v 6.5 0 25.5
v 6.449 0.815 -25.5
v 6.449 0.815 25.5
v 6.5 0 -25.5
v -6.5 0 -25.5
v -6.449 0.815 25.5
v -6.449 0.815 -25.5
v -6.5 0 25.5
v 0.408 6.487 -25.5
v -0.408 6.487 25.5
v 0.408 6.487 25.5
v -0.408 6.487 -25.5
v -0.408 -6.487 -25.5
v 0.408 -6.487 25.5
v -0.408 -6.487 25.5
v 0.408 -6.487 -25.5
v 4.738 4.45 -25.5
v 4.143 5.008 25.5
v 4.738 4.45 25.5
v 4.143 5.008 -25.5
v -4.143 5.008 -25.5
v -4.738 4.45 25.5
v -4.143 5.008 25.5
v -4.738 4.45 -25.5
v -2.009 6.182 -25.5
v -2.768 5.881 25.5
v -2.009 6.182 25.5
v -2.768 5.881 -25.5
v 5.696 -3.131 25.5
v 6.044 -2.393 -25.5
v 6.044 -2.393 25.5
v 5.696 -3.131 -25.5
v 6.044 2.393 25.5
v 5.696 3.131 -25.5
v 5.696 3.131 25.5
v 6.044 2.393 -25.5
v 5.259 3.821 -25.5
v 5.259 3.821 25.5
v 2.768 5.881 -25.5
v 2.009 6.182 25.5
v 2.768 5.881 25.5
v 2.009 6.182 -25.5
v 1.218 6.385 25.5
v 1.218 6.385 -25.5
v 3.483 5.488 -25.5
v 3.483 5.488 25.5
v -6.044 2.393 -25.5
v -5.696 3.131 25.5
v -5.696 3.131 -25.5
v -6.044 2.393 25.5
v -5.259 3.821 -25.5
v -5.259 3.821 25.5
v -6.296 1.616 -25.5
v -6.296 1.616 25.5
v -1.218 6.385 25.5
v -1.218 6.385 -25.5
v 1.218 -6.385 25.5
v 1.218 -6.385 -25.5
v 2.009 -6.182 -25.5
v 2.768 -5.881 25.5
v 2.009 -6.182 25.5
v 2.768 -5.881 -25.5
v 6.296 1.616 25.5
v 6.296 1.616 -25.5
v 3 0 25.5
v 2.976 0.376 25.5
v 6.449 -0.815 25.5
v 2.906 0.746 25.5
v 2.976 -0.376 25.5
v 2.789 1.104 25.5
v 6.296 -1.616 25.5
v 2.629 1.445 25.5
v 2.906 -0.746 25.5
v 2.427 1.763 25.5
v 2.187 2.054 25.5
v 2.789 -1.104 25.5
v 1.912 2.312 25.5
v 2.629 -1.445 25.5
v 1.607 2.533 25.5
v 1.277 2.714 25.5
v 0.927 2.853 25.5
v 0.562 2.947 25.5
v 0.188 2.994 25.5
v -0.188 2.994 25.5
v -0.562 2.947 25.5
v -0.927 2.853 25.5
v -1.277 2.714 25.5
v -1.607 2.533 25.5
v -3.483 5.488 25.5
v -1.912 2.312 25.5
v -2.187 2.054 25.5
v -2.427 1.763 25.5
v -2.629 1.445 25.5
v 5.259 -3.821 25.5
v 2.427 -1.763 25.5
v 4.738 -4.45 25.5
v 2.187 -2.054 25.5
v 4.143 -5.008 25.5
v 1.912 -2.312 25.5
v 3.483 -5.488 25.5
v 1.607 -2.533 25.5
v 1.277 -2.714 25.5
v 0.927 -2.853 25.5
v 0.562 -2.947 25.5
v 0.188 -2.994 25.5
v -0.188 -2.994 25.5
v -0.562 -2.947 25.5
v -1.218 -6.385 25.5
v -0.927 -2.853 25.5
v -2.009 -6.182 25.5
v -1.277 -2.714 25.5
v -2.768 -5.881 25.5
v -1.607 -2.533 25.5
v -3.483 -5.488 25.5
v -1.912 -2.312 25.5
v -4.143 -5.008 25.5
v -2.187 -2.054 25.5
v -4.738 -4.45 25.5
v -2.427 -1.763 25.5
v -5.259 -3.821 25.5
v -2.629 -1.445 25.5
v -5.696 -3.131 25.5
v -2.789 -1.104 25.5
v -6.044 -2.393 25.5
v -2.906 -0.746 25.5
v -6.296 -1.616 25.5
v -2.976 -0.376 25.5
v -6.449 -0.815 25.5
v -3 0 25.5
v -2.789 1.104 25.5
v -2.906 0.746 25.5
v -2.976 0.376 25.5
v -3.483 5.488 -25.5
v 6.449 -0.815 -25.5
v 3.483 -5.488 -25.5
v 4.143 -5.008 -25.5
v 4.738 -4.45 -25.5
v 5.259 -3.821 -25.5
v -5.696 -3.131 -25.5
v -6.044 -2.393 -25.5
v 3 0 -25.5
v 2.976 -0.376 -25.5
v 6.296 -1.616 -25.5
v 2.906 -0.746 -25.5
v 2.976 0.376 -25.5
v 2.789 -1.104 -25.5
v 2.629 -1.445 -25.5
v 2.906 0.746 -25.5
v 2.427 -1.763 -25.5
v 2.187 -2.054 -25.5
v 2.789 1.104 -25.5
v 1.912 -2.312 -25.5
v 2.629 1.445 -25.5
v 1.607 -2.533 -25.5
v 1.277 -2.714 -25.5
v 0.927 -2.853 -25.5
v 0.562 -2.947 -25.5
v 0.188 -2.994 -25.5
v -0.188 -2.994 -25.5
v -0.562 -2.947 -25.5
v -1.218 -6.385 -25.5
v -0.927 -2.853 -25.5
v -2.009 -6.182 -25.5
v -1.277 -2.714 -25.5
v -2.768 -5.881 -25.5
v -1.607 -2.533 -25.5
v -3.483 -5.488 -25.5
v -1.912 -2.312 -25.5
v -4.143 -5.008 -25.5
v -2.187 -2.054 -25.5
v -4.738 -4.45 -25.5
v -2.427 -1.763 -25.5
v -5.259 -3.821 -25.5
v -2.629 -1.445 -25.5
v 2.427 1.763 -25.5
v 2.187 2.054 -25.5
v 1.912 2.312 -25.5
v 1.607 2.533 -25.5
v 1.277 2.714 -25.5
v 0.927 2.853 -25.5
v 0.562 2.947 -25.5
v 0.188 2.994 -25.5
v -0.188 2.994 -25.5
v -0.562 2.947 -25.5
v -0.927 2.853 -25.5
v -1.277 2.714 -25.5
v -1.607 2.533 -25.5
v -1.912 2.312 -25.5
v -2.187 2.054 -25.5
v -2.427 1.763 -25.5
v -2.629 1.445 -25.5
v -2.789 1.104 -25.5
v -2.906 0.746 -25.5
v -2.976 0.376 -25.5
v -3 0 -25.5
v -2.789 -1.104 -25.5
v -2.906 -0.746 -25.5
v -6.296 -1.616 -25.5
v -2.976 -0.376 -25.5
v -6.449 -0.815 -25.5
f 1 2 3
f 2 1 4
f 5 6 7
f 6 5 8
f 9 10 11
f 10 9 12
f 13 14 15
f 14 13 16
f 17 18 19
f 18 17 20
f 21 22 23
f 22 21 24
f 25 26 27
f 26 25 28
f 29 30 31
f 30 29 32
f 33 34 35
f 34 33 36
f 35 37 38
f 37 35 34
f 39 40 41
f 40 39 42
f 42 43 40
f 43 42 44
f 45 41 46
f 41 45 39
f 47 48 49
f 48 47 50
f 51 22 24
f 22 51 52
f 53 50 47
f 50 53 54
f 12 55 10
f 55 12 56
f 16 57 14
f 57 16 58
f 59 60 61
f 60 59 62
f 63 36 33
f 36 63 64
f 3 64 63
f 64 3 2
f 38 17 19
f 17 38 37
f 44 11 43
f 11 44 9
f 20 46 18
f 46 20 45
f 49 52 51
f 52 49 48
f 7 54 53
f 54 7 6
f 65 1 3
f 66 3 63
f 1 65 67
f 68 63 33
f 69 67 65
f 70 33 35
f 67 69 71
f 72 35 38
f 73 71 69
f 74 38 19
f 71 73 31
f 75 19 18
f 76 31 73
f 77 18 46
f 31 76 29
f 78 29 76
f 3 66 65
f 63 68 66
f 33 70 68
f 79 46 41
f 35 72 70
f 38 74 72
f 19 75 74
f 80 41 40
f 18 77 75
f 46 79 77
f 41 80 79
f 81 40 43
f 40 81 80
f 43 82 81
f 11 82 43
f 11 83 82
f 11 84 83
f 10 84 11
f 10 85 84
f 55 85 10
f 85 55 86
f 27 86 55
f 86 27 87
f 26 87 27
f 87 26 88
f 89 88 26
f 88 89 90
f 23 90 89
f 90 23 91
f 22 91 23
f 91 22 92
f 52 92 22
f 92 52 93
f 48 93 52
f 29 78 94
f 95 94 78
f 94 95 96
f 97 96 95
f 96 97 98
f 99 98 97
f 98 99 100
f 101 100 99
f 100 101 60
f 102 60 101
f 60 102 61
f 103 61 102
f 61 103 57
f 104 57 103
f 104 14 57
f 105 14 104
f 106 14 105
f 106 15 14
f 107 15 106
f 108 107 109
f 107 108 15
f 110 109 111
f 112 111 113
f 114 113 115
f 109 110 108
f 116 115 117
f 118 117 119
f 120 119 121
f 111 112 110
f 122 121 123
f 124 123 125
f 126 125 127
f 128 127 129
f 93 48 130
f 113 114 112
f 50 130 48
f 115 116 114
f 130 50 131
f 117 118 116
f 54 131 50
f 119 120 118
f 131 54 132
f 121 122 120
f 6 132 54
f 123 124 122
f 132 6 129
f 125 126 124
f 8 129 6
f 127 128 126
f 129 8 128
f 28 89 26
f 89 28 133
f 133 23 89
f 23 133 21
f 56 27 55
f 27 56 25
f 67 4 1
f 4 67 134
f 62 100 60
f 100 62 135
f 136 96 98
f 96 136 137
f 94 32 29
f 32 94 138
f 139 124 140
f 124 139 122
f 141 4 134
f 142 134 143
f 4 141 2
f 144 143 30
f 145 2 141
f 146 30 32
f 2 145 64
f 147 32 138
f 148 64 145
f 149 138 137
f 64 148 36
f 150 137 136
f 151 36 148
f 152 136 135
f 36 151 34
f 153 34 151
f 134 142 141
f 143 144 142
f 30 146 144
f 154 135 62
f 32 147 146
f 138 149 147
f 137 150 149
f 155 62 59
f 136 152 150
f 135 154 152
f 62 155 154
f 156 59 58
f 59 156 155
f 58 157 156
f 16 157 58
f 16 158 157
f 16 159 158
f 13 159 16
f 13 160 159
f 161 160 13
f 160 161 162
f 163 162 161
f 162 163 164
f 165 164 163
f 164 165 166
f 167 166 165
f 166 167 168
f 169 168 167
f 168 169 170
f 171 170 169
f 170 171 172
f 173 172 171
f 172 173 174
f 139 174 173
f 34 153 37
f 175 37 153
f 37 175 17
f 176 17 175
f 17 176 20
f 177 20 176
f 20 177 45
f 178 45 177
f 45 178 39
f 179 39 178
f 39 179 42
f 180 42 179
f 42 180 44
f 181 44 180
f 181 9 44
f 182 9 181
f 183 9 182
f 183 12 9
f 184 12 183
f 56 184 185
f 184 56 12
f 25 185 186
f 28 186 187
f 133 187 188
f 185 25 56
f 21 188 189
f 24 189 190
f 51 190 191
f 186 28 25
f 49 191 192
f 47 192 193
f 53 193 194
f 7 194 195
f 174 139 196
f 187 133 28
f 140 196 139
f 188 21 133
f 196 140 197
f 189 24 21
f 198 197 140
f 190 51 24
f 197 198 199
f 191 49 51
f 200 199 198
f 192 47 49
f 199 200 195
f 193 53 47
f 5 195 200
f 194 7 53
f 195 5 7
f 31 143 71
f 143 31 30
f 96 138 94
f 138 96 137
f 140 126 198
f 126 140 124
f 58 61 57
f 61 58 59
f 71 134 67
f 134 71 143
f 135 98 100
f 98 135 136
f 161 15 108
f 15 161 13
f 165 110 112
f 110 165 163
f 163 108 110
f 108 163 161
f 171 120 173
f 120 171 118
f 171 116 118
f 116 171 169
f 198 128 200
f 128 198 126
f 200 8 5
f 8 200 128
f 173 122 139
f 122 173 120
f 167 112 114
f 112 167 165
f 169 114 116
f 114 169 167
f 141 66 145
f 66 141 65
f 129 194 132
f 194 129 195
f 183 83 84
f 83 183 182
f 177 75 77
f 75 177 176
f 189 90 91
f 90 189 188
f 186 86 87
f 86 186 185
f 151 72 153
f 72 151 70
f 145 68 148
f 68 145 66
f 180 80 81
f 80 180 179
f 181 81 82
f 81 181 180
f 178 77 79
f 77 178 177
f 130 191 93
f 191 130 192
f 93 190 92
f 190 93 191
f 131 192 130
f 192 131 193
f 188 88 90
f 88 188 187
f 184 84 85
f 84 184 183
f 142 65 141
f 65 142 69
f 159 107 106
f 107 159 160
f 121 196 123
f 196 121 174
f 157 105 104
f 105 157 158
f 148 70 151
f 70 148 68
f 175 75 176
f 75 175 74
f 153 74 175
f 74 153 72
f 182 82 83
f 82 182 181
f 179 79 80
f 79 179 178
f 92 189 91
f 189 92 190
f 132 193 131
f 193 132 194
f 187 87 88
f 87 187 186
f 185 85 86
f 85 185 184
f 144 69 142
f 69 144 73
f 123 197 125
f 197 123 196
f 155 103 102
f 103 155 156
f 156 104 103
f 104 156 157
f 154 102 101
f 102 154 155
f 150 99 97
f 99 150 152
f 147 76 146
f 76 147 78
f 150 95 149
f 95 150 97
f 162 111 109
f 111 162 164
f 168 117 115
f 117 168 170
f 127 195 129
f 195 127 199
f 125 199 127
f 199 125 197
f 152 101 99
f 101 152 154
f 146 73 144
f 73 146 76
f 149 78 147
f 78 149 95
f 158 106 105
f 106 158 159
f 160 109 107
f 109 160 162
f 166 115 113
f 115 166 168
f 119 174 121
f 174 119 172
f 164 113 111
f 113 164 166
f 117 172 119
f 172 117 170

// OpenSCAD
$fn = 50;


difference() {
	union() {
		translate(v = [0, 0, -25.5000000000]) {
			cylinder(h = 51, r = 6.5000000000);
		}
	}
	union() {
		translate(v = [0, 0, -100.0000000000]) {
			cylinder(h = 200, r = 3);
		}
	}
}
